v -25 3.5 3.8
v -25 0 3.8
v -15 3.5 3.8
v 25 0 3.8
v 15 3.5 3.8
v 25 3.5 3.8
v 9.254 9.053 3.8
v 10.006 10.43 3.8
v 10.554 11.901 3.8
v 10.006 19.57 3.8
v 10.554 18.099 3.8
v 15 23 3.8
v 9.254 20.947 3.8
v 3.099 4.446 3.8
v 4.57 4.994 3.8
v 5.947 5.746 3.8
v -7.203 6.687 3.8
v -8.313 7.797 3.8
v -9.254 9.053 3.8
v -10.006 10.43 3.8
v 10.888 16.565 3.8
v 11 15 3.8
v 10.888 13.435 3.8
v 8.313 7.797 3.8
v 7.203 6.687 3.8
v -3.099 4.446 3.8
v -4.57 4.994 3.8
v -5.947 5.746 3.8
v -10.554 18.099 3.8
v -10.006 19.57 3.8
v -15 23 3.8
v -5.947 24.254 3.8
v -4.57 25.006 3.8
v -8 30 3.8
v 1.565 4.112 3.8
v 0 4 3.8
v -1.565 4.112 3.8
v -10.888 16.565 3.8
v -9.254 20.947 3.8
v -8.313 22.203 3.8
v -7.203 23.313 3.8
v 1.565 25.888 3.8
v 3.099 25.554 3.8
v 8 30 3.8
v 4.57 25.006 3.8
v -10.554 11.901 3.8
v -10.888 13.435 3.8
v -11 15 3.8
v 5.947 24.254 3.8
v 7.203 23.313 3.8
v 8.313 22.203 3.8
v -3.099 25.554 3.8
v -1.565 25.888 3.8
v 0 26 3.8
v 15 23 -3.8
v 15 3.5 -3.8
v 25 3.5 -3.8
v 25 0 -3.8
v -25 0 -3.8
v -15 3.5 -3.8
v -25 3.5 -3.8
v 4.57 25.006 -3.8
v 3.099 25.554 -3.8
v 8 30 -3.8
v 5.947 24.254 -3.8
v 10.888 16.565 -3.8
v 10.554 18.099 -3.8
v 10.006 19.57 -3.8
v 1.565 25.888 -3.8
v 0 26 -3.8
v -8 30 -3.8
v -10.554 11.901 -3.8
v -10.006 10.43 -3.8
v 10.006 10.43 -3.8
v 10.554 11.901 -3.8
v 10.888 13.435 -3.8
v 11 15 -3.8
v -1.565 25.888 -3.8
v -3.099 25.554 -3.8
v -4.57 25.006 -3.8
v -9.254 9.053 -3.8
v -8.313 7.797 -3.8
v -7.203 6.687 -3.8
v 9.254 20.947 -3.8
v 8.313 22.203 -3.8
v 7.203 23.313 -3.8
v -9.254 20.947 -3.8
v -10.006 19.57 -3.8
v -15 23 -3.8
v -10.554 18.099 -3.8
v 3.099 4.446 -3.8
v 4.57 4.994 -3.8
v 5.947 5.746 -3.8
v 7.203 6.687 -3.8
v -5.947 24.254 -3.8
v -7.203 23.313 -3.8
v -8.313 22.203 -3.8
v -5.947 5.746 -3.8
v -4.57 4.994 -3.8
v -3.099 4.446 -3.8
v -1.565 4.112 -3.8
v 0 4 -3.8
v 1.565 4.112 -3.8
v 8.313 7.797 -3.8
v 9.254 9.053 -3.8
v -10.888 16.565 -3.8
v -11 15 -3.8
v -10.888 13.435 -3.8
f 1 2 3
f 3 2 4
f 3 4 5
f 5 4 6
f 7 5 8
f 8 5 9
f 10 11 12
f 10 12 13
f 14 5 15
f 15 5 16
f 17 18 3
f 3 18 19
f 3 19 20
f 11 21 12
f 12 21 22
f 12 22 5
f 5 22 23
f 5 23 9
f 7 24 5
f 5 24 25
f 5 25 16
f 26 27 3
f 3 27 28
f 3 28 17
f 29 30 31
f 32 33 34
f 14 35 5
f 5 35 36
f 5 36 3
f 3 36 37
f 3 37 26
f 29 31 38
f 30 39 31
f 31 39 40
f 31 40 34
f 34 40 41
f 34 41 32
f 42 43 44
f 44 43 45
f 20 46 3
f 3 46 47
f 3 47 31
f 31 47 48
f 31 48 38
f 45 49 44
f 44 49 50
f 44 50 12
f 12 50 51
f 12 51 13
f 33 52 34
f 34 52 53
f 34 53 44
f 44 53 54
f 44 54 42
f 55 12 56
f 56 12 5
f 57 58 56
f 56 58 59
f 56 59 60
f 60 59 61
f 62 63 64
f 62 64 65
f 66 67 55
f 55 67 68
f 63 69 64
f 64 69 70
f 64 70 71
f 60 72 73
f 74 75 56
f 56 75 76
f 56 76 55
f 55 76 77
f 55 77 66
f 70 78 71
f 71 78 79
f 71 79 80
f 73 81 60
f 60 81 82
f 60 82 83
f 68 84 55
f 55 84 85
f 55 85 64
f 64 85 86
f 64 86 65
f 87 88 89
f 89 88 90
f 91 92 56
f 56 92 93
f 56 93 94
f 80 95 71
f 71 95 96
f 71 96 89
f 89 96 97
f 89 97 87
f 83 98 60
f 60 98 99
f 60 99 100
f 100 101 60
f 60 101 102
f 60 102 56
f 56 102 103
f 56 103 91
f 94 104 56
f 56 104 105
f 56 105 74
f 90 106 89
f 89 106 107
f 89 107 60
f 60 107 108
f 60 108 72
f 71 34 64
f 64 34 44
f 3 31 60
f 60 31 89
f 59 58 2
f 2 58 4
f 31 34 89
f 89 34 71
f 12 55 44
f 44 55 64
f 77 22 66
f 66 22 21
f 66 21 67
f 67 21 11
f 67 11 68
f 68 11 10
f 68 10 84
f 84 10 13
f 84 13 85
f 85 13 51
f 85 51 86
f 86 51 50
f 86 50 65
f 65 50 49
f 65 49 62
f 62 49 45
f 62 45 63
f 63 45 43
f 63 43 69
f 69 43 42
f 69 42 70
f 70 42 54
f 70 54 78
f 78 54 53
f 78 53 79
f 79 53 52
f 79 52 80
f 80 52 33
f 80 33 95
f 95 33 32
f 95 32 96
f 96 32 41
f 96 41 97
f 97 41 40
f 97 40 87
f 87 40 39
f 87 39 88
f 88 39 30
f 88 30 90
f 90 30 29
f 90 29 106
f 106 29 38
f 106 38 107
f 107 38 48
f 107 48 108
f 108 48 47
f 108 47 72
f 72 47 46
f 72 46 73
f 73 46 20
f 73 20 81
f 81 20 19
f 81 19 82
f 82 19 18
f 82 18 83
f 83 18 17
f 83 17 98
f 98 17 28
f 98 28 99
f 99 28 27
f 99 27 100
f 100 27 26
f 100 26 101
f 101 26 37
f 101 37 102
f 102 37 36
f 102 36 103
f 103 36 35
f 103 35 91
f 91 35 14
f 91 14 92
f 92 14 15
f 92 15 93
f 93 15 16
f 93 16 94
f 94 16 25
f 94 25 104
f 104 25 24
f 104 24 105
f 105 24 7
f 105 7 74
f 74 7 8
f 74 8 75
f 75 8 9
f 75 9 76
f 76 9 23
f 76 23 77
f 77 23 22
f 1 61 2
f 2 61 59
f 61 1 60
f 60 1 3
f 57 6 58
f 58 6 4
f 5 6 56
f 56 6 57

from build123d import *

# Parameters (mm, degrees)
SKETCH1_W           = 30
SKETCH1_H           = 7.6
BOSS_EXTRUDE1_DEPTH = 30
SKETCH2_R           = 11
CUT_EXTRUDE1_DEPTH  = 30
SKETCH3_W           = 50
SKETCH3_H           = 7.6
BOSS_EXTRUDE2_DEPTH = 3.5


with BuildPart() as part:
    # Sketch1 → Boss-Extrude1 (new body)
    with BuildSketch(Plane(origin=(0, 0, 0), x_dir=(1, 0, 0), z_dir=(0, 1, 0))):
        Rectangle(SKETCH1_W, SKETCH1_H)
    extrude(amount=BOSS_EXTRUDE1_DEPTH)

    # Sketch2 → Cut-Extrude1 (cut)
    with BuildSketch(Plane.XY.offset(3.8)):
        Polygon((-15, 30), (-15, 23), (-8, 30), align=None)
        Polygon((15, 30), (8, 30), (15, 23), align=None)
        with Locations((0, 15)):
            Circle(SKETCH2_R)
    extrude(amount=-CUT_EXTRUDE1_DEPTH, mode=Mode.SUBTRACT)

    # Sketch3 → Boss-Extrude2 (add)
    with BuildSketch(Plane.XZ):
        Rectangle(SKETCH3_W, SKETCH3_H)
    extrude(amount=-BOSS_EXTRUDE2_DEPTH)


solid = part.part
